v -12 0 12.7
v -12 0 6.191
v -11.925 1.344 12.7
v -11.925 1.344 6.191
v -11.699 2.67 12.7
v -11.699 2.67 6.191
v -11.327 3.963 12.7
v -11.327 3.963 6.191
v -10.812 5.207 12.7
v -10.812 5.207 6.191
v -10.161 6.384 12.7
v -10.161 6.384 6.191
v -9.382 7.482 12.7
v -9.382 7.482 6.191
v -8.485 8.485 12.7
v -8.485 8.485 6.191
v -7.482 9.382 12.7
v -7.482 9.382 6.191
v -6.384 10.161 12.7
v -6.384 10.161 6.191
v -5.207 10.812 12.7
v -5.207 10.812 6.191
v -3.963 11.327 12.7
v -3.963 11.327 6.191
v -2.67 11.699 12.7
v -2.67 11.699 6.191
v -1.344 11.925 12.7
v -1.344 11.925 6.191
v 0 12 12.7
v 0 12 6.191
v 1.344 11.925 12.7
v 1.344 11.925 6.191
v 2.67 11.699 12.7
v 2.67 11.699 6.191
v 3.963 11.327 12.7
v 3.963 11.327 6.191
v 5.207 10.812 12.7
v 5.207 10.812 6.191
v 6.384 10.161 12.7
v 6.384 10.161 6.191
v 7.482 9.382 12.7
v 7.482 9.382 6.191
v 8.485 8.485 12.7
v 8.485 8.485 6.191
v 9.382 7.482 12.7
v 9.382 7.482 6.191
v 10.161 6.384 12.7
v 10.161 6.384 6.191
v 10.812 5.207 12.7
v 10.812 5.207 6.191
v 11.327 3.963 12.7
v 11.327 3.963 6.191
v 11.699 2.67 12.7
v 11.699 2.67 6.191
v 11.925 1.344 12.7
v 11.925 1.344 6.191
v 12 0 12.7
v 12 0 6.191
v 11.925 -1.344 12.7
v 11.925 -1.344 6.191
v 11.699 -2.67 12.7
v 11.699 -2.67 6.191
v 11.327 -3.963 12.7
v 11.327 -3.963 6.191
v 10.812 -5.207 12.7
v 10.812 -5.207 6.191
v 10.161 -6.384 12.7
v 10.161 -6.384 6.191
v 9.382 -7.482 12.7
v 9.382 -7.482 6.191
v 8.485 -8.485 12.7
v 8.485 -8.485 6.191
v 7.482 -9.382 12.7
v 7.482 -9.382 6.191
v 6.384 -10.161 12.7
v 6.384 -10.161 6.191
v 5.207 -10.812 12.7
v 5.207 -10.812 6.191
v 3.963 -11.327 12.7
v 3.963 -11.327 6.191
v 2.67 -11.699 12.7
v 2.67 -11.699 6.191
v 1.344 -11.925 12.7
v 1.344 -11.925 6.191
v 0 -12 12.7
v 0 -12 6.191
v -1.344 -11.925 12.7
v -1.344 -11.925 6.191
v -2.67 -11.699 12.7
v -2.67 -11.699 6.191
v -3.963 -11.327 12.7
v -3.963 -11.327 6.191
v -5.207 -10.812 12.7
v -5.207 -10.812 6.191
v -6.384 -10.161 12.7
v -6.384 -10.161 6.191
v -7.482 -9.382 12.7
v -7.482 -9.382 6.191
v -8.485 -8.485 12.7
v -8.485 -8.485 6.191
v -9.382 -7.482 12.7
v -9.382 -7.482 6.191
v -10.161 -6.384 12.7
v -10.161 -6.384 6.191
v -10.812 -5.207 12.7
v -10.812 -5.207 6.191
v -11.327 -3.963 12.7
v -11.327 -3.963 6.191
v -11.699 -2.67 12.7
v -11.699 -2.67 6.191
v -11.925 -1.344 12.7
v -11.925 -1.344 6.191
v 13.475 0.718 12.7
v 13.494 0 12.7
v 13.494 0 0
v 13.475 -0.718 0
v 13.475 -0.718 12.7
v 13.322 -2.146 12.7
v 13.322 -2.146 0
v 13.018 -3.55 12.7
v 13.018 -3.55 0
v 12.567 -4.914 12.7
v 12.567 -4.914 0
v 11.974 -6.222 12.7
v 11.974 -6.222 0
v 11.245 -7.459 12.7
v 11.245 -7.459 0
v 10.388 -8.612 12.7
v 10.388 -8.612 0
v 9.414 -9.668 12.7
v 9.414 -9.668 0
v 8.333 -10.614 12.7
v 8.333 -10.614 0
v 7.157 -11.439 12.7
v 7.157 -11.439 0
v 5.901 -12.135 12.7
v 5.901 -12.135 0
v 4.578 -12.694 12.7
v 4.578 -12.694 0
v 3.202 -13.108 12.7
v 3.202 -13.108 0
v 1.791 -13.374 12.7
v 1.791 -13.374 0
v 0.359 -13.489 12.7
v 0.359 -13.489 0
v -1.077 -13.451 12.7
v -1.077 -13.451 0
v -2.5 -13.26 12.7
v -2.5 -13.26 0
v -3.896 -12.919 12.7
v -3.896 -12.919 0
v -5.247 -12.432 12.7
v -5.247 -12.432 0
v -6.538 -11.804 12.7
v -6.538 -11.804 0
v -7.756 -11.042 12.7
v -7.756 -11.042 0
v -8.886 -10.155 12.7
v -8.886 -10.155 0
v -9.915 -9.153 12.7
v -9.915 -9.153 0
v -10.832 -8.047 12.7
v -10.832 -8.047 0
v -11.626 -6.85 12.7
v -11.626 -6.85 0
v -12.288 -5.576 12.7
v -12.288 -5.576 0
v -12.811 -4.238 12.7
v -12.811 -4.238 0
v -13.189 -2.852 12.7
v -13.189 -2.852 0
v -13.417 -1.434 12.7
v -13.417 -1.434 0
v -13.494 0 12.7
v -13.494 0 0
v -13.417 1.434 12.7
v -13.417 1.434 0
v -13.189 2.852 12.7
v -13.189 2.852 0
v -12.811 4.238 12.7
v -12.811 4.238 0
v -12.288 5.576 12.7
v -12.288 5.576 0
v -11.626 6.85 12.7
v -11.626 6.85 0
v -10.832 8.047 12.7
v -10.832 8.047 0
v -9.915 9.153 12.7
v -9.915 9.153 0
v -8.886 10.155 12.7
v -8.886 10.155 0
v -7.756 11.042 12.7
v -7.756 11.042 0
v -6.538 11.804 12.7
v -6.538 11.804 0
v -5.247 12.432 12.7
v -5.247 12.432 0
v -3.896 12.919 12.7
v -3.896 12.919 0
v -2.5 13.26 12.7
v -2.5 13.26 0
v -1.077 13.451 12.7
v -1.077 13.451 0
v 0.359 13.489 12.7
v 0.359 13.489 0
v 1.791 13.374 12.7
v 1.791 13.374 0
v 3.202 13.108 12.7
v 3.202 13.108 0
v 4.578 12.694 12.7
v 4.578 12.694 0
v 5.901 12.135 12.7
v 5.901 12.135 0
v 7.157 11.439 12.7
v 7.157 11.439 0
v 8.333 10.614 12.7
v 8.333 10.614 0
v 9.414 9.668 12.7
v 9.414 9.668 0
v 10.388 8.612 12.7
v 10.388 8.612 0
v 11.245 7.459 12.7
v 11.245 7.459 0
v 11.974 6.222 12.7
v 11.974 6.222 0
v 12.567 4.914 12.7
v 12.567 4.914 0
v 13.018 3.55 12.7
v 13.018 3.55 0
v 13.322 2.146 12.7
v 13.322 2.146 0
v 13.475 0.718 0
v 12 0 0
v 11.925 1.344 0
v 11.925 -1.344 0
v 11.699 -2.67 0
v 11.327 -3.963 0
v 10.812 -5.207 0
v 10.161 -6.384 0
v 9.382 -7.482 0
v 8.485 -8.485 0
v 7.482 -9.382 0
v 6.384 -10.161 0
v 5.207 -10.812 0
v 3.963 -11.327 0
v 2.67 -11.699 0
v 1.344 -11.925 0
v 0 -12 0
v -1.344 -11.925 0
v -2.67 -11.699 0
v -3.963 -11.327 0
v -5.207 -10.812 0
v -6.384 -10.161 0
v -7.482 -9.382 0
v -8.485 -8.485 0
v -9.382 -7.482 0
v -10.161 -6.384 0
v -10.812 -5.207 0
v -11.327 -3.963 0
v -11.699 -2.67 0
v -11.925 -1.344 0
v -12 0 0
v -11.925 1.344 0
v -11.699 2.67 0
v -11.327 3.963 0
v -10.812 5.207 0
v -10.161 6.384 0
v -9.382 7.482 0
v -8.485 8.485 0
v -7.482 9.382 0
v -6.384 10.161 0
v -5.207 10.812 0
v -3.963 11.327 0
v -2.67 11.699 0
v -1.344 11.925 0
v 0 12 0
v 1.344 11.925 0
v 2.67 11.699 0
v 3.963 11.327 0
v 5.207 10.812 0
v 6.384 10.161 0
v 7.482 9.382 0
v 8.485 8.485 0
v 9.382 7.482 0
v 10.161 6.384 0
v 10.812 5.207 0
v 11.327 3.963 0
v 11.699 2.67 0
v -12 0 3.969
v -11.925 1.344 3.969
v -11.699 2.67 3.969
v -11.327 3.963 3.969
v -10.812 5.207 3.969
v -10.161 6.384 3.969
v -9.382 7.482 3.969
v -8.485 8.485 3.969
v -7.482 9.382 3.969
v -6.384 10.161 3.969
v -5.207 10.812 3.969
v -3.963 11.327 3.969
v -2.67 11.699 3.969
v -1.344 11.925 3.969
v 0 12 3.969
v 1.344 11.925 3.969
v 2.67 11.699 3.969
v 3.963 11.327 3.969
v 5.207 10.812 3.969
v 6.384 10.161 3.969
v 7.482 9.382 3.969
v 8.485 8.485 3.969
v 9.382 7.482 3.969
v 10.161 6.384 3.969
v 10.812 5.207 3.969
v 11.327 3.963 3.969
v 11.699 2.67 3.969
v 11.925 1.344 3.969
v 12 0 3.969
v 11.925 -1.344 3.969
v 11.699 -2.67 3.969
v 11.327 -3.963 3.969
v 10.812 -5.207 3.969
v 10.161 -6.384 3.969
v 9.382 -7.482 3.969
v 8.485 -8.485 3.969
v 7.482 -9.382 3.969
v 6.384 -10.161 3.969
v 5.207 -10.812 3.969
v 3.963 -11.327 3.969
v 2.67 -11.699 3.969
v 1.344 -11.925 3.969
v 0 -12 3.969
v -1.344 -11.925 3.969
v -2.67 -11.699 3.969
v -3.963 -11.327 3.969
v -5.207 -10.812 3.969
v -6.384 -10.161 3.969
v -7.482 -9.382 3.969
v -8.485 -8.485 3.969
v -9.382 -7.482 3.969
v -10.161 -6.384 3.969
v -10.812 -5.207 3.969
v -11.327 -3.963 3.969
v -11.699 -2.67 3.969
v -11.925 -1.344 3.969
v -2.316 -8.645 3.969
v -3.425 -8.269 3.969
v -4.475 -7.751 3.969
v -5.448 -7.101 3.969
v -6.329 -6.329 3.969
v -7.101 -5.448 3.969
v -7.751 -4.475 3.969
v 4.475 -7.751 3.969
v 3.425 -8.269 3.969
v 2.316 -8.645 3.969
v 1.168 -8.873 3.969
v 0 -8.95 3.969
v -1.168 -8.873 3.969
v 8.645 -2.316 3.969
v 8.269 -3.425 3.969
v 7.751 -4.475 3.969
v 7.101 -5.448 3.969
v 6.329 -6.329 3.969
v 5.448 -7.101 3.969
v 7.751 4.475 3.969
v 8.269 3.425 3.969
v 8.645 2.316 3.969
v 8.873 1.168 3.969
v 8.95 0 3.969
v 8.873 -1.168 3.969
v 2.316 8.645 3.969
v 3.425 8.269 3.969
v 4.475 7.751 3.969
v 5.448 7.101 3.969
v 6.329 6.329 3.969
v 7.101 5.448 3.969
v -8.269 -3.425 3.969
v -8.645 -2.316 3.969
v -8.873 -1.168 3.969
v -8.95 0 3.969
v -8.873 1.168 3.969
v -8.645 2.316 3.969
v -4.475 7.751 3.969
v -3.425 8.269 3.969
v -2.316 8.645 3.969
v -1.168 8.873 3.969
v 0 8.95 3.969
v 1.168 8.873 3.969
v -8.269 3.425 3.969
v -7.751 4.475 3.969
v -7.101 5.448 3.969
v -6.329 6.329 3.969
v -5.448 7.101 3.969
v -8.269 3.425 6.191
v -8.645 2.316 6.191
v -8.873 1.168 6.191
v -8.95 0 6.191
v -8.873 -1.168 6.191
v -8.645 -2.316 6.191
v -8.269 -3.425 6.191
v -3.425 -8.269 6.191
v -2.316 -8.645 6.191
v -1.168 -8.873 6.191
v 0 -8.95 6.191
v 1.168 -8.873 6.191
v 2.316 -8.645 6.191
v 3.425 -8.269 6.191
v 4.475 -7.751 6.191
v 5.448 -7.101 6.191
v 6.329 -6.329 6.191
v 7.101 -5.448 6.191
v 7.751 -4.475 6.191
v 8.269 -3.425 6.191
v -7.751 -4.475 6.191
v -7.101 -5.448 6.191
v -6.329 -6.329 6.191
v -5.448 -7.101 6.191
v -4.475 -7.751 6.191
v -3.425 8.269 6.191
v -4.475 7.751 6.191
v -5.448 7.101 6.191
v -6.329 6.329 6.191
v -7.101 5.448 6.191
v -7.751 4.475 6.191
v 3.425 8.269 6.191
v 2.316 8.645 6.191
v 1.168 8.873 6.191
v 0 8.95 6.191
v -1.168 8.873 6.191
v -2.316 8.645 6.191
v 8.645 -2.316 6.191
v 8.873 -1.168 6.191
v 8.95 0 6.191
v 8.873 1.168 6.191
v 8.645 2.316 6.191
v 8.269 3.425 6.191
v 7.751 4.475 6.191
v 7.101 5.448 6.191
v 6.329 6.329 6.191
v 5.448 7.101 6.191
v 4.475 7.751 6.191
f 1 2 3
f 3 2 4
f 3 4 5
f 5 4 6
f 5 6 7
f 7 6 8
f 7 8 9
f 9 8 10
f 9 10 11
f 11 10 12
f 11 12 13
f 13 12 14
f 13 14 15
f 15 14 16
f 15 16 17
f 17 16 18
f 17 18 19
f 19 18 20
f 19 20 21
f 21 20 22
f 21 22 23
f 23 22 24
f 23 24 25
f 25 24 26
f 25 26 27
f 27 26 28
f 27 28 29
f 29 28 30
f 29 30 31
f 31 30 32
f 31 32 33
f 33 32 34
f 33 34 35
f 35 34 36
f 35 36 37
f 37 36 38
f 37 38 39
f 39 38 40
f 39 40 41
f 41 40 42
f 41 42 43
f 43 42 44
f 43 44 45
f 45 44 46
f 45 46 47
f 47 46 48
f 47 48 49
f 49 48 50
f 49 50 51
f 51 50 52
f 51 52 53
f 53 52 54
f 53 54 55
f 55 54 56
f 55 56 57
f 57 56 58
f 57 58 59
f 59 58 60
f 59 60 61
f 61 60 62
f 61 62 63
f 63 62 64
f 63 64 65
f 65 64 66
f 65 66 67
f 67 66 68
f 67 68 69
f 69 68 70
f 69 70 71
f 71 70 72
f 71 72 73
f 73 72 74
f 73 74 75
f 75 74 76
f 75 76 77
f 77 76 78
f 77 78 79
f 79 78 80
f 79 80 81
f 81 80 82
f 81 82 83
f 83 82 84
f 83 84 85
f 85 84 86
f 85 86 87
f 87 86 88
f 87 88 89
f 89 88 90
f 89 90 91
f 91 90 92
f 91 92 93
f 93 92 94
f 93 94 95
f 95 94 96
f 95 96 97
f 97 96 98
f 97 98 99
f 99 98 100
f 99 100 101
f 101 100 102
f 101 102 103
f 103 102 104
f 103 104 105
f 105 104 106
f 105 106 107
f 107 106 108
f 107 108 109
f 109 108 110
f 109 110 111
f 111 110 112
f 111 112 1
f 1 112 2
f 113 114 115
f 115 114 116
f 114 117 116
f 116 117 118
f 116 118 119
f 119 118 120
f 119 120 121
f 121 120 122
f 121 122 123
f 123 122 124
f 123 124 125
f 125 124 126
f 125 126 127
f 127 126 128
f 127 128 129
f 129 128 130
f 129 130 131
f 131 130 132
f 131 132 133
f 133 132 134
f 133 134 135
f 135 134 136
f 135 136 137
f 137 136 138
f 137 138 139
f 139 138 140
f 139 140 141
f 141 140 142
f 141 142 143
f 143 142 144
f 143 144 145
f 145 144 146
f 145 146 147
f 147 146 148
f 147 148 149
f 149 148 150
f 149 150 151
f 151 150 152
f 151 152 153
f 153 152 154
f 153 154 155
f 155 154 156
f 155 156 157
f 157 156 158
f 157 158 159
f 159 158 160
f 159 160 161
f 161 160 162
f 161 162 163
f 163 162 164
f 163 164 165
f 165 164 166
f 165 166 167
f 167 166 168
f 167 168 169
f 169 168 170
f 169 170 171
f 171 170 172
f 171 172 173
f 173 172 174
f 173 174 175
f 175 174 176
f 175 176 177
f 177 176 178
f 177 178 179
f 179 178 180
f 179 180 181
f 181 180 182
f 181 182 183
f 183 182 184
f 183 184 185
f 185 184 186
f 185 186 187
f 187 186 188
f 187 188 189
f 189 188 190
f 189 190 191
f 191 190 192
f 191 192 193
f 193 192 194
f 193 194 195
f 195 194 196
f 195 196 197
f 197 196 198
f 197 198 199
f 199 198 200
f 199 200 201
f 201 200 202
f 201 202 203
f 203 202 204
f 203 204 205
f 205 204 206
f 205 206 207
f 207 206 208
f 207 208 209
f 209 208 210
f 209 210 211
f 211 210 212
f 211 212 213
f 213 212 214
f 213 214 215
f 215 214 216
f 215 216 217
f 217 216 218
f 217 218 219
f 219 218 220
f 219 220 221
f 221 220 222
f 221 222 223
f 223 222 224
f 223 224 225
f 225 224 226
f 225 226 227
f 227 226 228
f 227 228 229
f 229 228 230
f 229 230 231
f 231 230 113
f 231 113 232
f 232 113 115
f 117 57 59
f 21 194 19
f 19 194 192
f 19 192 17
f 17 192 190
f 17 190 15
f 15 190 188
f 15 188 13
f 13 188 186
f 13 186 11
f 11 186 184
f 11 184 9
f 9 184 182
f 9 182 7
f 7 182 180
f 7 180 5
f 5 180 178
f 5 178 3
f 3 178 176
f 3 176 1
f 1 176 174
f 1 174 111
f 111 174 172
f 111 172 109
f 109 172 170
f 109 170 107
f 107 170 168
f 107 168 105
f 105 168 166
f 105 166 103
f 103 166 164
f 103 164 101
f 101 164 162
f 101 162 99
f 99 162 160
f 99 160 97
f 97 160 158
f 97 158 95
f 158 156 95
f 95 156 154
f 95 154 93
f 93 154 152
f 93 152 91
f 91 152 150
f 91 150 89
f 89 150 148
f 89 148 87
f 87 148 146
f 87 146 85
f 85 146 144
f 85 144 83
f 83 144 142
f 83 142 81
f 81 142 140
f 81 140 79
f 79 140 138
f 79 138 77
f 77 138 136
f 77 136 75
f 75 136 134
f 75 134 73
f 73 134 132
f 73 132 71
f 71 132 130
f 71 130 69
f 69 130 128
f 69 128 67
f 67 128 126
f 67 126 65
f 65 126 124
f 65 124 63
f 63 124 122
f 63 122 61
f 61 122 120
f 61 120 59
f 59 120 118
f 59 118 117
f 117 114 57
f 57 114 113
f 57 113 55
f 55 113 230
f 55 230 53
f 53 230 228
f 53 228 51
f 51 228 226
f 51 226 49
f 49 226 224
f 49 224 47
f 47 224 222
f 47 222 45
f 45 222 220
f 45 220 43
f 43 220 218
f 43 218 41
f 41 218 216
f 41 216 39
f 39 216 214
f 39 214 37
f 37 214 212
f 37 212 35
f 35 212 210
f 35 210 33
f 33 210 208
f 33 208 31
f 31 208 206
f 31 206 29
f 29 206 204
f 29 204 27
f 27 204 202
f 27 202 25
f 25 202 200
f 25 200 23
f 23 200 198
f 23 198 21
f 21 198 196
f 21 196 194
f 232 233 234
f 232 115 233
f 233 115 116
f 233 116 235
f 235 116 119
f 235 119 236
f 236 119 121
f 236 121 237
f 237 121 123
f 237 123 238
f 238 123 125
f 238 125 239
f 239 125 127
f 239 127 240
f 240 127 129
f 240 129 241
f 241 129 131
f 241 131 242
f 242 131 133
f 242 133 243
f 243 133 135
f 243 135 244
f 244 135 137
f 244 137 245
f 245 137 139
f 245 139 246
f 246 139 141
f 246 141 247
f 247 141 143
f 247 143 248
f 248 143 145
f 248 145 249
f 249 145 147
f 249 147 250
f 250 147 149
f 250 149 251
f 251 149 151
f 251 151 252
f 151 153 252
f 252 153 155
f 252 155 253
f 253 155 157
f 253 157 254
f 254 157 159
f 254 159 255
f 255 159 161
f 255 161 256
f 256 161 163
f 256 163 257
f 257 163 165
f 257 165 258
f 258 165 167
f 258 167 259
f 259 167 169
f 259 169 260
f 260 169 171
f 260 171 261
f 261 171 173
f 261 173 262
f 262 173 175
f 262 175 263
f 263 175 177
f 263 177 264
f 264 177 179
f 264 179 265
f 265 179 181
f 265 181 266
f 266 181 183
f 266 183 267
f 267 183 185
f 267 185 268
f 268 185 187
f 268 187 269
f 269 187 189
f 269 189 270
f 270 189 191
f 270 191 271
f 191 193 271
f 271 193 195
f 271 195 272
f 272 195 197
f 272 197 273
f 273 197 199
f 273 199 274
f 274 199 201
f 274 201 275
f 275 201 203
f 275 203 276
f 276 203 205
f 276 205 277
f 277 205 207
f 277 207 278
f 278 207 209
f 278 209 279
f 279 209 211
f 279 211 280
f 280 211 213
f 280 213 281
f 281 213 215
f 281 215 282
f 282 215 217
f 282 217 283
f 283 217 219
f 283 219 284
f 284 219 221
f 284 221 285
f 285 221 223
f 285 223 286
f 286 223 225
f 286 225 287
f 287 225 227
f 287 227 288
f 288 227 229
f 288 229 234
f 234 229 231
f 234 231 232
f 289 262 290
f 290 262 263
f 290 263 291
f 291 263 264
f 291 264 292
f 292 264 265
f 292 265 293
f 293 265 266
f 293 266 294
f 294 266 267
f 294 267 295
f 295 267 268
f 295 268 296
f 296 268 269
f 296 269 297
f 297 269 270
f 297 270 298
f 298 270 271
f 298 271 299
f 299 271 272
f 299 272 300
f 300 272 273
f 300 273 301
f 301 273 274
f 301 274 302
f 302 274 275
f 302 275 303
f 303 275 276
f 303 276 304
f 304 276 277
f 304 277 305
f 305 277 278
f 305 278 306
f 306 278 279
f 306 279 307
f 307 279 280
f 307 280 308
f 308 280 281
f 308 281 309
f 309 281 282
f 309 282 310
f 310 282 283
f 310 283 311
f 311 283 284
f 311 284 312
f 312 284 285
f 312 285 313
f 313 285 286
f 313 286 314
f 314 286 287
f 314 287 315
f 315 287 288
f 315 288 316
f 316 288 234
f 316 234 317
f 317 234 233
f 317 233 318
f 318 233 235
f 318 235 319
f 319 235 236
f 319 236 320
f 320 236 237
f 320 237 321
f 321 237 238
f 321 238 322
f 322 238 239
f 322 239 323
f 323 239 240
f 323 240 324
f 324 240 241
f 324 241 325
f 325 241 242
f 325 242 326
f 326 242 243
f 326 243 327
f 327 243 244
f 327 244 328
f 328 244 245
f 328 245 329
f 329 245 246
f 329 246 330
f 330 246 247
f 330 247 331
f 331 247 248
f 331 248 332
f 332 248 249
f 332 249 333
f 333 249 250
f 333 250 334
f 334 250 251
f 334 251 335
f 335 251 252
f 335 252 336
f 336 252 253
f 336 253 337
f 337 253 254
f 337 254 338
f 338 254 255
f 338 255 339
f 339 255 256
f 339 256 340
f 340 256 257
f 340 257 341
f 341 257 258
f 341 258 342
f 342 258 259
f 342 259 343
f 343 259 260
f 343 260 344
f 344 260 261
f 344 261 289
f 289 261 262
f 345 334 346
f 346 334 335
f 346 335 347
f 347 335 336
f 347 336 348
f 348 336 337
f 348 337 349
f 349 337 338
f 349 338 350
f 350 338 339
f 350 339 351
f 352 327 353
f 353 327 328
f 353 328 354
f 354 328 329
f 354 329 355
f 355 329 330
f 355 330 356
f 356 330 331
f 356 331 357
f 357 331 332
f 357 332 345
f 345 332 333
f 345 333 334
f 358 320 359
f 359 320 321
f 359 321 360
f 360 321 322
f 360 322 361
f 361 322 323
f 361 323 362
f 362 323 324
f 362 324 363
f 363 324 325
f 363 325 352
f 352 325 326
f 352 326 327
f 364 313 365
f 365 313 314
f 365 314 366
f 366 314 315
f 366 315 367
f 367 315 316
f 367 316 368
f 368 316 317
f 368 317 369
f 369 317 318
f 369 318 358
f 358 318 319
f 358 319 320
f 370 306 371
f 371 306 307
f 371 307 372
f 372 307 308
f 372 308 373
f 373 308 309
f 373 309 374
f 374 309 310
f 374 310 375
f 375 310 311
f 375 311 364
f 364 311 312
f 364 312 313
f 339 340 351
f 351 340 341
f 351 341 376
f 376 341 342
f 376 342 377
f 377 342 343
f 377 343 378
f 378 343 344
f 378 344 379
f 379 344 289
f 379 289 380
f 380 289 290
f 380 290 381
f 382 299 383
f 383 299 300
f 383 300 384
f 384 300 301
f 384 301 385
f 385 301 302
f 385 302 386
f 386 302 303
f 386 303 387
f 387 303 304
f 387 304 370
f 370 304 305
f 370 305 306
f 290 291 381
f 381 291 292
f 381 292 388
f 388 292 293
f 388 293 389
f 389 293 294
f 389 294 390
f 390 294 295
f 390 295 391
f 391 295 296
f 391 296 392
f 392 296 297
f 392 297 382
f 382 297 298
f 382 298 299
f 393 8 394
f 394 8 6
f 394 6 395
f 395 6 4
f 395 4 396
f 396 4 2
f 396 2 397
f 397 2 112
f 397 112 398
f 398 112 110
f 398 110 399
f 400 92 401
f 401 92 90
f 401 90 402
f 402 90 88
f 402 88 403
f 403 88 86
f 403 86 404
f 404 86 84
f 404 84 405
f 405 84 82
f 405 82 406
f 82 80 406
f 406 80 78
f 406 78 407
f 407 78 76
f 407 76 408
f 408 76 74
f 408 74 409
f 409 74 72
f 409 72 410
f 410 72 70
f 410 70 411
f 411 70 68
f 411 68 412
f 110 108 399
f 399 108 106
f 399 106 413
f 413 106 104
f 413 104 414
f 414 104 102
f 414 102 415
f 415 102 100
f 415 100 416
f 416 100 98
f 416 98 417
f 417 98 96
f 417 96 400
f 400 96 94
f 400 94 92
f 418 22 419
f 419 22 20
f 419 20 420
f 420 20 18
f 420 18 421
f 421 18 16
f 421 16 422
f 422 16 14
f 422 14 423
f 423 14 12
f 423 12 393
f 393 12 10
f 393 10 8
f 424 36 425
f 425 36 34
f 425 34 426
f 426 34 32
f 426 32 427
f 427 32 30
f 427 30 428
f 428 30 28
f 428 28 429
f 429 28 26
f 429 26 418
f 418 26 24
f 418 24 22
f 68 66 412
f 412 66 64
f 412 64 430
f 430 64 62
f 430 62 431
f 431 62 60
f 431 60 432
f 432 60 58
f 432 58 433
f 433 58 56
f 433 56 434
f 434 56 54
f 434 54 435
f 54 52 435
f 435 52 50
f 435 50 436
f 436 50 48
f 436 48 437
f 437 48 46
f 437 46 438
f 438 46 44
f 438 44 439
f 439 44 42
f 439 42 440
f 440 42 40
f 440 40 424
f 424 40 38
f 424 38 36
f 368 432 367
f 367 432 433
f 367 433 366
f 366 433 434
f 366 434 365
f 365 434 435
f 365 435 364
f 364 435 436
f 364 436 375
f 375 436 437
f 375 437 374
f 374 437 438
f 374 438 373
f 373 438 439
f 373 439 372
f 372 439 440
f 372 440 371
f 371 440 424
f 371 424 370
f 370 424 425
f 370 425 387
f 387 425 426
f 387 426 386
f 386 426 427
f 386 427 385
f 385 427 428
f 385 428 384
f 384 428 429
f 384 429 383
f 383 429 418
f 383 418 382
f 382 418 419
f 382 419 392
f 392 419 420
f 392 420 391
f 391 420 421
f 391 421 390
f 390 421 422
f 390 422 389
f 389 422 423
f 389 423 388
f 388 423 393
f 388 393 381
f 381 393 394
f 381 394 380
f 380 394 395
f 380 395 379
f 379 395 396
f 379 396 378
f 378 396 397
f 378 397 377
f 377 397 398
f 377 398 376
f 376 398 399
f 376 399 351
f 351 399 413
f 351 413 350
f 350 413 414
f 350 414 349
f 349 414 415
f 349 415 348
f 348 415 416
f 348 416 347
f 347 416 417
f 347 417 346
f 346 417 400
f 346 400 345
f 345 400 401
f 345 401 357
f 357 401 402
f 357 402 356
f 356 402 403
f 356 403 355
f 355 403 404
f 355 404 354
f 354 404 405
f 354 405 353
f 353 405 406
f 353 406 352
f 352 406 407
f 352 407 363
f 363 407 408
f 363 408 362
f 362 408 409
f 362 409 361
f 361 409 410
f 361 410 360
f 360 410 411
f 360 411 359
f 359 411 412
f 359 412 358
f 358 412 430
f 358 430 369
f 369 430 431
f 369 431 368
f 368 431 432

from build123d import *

# Parameters (mm, degrees)
SKETCH1_R           = 13.49375
BOSS_EXTRUDE1_DEPTH = 12.7
SKETCH3_R           = 12
CUT_EXTRUDE2_DEPTH  = 23.922752412
SKETCH4_R           = 12
BOSS_EXTRUDE2_DEPTH = 2.2225
SKETCH5_R           = 8.95
CUT_EXTRUDE3_DEPTH  = 21.162499961


with BuildPart() as part:
    # Sketch1 → Boss-Extrude1 (new body)
    with BuildSketch(Plane.XY):
        Circle(SKETCH1_R)
    extrude(amount=BOSS_EXTRUDE1_DEPTH)

    # Sketch3 → Cut-Extrude2 (cut, through all)
    with BuildSketch(Plane(origin=(0, 0, 0), x_dir=(-1, 0, 0), z_dir=(0, 0, -1))):
        Circle(SKETCH3_R)
    extrude(amount=-CUT_EXTRUDE2_DEPTH, mode=Mode.SUBTRACT)

    # Sketch4 → Boss-Extrude2 (add)
    with BuildSketch(Plane(origin=(0, 0, 3.96875), x_dir=(-1, 0, 0), z_dir=(0, 0, -1))):
        Circle(SKETCH4_R)
    extrude(amount=-BOSS_EXTRUDE2_DEPTH)

    # Sketch5 → Cut-Extrude3 (cut, through all)
    with BuildSketch(Plane.XY.offset(6.19125)):
        Circle(SKETCH5_R)
    extrude(amount=-CUT_EXTRUDE3_DEPTH, mode=Mode.SUBTRACT)


solid = part.part
